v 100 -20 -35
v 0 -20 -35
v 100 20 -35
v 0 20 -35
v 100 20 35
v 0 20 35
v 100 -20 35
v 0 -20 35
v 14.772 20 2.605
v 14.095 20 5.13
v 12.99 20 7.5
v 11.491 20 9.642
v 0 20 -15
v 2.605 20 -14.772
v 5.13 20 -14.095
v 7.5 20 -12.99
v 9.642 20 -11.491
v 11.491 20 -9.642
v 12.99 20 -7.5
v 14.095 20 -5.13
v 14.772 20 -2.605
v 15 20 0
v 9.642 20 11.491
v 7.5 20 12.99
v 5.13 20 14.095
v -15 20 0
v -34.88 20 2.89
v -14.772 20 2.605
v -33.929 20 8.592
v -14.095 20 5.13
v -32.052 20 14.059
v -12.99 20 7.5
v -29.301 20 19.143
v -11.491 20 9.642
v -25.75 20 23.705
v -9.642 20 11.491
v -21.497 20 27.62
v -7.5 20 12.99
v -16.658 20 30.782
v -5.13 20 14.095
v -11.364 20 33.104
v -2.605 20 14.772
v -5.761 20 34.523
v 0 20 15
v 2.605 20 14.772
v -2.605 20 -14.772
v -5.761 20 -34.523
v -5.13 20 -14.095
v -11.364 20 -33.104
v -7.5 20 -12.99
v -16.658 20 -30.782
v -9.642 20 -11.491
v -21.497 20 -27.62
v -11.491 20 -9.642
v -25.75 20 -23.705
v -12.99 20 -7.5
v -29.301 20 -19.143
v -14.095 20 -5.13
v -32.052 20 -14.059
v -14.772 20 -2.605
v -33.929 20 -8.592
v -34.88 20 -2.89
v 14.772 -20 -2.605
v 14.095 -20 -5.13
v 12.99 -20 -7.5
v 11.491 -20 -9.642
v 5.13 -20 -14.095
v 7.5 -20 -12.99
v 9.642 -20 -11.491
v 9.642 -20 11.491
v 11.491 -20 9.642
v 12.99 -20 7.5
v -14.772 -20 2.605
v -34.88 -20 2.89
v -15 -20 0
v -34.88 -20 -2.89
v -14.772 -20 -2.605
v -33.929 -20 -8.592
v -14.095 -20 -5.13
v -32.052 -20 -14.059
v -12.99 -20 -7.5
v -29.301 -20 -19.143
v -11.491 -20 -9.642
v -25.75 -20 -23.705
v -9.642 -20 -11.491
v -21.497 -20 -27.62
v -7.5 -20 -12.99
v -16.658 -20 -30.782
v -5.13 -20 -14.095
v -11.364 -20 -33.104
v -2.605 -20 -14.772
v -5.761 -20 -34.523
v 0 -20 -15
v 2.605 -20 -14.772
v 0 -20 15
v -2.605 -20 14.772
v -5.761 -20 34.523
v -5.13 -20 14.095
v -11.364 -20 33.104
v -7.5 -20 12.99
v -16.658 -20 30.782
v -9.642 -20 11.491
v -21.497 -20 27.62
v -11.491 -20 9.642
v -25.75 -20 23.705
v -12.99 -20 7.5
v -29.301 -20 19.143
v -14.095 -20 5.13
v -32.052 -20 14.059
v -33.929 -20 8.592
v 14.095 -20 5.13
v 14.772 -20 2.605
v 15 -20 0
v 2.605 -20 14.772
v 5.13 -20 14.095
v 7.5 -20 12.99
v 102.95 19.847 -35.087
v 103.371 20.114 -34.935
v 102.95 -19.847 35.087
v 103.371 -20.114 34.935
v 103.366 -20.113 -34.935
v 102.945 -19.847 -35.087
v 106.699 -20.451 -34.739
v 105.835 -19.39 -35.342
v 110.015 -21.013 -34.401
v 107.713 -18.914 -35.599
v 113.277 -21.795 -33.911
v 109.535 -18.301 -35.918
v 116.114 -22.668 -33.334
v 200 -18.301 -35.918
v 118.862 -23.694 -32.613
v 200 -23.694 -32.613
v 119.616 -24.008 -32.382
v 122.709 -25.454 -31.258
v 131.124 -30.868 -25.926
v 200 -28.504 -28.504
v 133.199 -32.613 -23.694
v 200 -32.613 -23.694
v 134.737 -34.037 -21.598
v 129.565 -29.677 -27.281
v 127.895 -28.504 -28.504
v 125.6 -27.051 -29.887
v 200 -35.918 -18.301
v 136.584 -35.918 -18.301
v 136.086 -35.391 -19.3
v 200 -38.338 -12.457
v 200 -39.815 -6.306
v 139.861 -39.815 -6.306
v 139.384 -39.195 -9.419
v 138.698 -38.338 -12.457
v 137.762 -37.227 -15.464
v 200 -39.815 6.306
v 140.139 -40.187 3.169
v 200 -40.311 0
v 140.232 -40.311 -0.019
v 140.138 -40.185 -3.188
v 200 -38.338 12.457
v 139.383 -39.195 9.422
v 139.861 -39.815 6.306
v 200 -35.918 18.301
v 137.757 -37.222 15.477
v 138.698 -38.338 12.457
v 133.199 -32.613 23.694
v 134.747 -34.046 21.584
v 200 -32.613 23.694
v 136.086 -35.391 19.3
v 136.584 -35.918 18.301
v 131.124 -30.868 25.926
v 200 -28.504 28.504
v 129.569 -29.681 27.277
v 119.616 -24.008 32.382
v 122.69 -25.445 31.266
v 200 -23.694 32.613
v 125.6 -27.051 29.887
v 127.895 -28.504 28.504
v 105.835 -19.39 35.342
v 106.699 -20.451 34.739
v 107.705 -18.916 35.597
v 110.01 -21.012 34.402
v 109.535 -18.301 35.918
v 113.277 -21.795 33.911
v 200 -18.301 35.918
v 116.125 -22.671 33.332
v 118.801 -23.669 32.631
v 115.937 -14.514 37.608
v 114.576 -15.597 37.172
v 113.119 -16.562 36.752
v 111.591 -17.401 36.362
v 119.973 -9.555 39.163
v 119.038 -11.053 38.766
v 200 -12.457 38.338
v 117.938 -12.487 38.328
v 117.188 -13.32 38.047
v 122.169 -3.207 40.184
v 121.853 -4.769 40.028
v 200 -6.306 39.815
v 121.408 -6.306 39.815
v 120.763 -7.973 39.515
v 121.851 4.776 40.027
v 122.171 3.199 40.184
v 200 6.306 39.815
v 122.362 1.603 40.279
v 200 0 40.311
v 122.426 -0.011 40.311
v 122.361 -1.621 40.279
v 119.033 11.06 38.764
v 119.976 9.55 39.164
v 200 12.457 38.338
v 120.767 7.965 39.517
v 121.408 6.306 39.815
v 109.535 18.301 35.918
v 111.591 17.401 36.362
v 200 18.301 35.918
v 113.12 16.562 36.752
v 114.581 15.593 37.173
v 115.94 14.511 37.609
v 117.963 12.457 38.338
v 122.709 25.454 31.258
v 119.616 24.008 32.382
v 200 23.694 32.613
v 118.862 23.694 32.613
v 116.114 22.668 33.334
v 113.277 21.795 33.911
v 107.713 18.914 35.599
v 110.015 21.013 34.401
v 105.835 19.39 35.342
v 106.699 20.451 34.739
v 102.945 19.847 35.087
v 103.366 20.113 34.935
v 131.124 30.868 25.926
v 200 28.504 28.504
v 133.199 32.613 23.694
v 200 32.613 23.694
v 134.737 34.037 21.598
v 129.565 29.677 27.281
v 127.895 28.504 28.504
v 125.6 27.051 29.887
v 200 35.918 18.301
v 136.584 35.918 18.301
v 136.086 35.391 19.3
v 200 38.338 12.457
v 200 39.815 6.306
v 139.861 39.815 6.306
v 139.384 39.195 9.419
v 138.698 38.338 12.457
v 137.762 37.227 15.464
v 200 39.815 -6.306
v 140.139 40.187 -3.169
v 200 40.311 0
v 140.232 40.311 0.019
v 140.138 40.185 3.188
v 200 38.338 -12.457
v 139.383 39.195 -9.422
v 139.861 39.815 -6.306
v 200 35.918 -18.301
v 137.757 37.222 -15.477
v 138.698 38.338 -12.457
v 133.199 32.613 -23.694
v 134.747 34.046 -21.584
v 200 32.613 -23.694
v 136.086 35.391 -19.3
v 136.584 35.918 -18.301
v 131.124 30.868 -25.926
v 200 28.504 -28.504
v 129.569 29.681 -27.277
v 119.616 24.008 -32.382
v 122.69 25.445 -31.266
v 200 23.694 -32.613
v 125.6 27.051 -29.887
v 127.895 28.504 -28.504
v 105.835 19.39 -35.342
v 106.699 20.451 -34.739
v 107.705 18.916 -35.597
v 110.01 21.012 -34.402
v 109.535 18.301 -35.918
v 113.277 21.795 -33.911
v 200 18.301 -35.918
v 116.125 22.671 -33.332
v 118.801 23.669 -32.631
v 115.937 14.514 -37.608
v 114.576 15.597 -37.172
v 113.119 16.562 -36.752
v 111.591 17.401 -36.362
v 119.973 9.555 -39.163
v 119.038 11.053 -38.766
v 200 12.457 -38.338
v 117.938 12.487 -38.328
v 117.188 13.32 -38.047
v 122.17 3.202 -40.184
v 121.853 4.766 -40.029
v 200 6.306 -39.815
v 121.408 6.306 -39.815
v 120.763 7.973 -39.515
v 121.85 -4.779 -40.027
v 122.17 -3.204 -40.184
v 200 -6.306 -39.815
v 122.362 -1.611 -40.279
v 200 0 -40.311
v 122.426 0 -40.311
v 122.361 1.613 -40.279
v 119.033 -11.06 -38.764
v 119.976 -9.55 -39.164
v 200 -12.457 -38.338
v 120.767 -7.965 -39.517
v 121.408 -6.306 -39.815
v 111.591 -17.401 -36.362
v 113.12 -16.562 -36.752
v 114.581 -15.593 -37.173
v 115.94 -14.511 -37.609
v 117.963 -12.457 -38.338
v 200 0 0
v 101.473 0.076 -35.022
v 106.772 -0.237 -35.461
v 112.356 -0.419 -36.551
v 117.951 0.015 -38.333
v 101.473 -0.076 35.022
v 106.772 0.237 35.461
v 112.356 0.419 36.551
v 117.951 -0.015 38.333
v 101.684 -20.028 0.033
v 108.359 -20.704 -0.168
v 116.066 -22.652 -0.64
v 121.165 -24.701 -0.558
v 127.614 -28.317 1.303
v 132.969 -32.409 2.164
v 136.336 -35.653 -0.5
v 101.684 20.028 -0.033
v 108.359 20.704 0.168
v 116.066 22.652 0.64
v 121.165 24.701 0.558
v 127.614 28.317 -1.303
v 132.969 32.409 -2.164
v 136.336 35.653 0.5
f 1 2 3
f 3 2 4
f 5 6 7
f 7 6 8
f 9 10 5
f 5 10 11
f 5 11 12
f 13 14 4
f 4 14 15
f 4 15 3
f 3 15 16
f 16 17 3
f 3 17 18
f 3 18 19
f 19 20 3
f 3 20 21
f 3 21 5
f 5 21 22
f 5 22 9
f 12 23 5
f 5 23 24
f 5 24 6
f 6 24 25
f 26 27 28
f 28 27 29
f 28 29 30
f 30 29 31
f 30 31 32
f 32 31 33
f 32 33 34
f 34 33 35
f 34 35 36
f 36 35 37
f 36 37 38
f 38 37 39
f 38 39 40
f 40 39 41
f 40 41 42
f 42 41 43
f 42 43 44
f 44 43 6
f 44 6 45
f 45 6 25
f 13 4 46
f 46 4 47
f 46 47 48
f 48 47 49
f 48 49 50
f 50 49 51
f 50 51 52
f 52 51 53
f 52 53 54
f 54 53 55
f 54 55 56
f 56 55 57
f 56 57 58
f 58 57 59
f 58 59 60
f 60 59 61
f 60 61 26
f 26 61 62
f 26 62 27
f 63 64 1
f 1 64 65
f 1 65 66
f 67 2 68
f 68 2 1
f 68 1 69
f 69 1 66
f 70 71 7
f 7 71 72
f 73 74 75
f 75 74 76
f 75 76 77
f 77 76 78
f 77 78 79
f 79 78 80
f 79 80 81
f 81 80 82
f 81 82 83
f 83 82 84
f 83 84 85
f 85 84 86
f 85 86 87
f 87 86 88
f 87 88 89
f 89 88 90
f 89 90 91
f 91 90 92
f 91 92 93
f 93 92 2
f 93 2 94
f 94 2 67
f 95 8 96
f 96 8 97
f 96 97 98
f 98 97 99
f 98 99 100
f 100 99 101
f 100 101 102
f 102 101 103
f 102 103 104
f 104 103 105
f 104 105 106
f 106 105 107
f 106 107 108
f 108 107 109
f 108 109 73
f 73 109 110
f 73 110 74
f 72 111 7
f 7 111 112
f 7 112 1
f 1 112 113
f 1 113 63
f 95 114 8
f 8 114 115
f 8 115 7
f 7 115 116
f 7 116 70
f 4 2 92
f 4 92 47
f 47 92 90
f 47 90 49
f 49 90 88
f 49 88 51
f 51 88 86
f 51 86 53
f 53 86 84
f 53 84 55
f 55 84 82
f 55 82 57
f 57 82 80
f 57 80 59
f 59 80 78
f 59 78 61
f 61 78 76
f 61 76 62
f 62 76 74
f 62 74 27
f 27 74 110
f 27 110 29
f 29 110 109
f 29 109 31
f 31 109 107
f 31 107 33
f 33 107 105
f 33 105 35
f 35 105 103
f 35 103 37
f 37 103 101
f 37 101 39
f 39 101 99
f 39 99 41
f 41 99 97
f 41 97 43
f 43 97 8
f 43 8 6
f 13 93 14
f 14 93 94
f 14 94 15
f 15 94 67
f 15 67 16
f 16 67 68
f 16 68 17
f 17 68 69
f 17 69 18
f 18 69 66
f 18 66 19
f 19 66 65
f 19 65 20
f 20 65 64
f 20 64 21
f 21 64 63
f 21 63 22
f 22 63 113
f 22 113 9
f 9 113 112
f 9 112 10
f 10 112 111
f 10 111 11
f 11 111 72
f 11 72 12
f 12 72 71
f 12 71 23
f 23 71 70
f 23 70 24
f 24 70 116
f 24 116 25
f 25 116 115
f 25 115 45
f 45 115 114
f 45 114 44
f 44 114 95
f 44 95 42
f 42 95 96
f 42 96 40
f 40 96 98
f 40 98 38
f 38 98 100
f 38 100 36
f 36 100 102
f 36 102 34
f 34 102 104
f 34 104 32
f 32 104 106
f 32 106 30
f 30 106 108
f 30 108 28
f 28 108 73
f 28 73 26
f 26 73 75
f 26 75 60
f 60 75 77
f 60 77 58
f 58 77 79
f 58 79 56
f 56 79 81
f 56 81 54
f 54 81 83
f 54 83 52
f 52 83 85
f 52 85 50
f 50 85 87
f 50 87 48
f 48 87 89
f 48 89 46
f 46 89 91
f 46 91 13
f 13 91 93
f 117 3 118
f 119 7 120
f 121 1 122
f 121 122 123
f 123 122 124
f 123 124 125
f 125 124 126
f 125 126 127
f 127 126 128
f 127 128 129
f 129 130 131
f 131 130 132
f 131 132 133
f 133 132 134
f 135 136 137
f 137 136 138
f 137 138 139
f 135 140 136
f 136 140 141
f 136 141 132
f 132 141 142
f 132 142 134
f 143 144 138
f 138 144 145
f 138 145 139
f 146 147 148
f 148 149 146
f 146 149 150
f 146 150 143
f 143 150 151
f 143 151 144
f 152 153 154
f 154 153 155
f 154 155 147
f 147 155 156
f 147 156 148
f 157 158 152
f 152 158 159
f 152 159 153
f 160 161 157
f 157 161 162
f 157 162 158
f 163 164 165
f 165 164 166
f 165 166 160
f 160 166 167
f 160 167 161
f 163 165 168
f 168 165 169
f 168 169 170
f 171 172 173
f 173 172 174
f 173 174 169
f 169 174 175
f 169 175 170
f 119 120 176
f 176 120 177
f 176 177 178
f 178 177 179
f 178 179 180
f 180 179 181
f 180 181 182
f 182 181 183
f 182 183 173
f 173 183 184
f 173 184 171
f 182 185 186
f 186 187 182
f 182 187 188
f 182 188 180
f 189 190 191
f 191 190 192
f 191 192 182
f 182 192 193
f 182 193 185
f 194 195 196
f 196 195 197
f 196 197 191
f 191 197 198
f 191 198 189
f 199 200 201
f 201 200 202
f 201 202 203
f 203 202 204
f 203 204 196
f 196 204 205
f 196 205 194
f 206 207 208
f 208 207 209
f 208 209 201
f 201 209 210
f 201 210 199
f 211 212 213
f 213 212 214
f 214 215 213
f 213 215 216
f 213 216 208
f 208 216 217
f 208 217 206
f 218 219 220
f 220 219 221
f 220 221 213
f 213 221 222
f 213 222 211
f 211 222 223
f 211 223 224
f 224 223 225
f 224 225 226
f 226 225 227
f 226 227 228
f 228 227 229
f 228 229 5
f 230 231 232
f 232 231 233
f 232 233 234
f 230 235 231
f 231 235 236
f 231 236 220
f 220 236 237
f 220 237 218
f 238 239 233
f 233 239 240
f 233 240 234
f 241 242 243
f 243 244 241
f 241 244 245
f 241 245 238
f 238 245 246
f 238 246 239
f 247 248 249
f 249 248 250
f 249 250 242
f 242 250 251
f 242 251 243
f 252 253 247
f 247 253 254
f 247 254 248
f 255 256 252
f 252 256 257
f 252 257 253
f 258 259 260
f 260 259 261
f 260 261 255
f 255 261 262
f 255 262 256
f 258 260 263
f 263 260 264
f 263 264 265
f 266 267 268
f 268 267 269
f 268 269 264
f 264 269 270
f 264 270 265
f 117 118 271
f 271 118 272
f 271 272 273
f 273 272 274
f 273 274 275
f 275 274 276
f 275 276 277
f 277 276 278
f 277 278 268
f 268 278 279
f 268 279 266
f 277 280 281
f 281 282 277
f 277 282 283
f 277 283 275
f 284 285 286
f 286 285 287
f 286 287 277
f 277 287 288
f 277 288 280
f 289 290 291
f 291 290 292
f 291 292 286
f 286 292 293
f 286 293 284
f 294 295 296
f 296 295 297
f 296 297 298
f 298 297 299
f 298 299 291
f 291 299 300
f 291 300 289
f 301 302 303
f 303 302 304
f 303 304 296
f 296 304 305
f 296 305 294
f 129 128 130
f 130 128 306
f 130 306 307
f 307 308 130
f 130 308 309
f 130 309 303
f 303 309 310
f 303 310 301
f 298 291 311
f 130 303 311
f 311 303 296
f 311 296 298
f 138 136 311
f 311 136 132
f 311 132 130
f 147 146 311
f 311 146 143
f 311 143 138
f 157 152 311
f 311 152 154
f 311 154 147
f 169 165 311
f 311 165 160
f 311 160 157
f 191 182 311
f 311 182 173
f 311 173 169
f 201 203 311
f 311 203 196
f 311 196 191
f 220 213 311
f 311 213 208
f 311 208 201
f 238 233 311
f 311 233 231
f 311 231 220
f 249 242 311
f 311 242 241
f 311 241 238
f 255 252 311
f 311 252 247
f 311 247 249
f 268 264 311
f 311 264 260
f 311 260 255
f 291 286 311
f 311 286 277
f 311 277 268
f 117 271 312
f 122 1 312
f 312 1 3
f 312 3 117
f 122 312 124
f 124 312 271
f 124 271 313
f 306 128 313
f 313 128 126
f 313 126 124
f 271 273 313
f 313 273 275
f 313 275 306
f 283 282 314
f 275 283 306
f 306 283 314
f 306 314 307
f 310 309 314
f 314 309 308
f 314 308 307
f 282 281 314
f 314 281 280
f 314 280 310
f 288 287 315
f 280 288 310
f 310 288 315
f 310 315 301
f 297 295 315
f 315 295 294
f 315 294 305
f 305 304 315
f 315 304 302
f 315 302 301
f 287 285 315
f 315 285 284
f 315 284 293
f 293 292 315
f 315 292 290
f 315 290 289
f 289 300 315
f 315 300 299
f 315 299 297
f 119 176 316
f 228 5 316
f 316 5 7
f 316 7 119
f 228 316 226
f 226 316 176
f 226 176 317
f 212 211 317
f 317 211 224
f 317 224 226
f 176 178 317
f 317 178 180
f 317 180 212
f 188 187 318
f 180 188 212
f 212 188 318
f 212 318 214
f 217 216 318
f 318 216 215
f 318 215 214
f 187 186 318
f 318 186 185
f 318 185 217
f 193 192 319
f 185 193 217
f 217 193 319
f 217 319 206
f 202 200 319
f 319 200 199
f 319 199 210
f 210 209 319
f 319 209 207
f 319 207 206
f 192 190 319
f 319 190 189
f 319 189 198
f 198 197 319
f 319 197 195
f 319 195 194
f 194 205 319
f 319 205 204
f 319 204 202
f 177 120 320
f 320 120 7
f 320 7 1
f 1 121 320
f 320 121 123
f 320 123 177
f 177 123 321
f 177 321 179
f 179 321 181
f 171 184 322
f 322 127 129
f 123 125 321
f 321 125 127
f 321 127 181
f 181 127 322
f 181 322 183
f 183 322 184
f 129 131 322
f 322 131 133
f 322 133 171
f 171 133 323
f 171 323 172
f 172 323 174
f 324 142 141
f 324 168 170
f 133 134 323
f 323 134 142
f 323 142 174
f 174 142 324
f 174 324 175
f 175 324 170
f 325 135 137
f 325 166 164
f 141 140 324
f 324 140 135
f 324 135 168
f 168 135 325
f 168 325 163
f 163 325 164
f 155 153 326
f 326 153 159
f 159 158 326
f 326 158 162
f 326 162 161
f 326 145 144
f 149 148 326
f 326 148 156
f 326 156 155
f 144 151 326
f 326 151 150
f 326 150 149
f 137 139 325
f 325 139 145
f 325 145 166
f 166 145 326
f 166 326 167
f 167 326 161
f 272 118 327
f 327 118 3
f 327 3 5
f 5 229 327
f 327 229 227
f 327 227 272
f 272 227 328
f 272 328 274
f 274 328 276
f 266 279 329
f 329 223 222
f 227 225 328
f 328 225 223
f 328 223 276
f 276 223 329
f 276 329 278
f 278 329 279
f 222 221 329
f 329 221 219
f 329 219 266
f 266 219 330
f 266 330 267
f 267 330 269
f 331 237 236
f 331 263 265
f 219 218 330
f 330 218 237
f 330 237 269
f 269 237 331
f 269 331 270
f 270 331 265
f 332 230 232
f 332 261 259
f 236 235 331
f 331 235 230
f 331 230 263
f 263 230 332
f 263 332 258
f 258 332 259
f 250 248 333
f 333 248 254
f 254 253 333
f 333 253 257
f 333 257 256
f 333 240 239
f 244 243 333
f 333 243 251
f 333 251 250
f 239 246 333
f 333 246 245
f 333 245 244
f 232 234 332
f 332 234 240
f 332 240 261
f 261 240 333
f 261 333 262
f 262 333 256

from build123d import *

# Parameters (mm, degrees)
SKETCH2_R           = 15
BOSS_EXTRUDE1_DEPTH = 20
SKETCH3_R           = 40.311288741
BOSS_EXTRUDE2_DEPTH = 50
FILLET1_R           = 50
FILLET2_R           = 50


with BuildPart() as part:
    # Sketch2 → Boss-Extrude1 (new, symmetric)
    with BuildSketch(Plane(origin=(0, 0, 0), x_dir=(1, 0, 0), z_dir=(0, 1, 0))):
        with BuildLine():
            Line((0, 35), (200, 35))
            Line((200, 35), (200, -35))
            Line((200, -35), (0, -35))
            ThreePointArc((0, -35), (-35, 0), (0, 35))
        make_face()
        with Locations(Location((0, 0, 0), (0, 0, 270))):
            Circle(SKETCH2_R, mode=Mode.SUBTRACT)
    extrude(amount=BOSS_EXTRUDE1_DEPTH, both=True)

    # Sketch3 → Boss-Extrude2 (add)
    with BuildSketch(Plane(origin=(200, 0, 0), x_dir=(0, 0, -1), z_dir=(1, 0, 0))):
        Circle(SKETCH3_R)
    extrude(amount=-BOSS_EXTRUDE2_DEPTH)

    # Fillet1
    # the kernel refuses this fillet: 50 mm, written as the material it adds along each edge
    with BuildSketch(Plane(origin=(150, -145, -35), x_dir=(-1, 0, 0), z_dir=(0, 1, 0))) as fillet1_piece_1_section:
        with BuildLine():
            CenterArc((FILLET1_R, -FILLET1_R), FILLET1_R, 90, 90)
            Line((0, -FILLET1_R), (0, 0))
            Line((0, 0), (FILLET1_R, 0))
        make_face()
    fillet1_piece_1 = extrude(amount=290, mode=Mode.PRIVATE)
    fillet1_piece_1 = fillet1_piece_1 & Plane(origin=(131.355668078, 0, 0), x_dir=(0, 0, -1), z_dir=(1, 0, 0)) * Cylinder(40.311288741, 781, mode=Mode.PRIVATE)
    add(fillet1_piece_1)
    with BuildSketch(Plane(origin=(150, 145, 35), x_dir=(0, 0, 1), z_dir=(0, -1, 0))) as fillet1_piece_2_section:
        with BuildLine():
            CenterArc((FILLET1_R, FILLET1_R), FILLET1_R, 180, 90)
            Line((0, FILLET1_R), (0, 0))
            Line((0, 0), (FILLET1_R, 0))
        make_face()
    fillet1_piece_2 = extrude(amount=290, mode=Mode.PRIVATE)
    fillet1_piece_2 = fillet1_piece_2 & Plane(origin=(131.35565772, 0, 0), x_dir=(0, 0, -1), z_dir=(1, 0, 0)) * Cylinder(40.311288741, 780, mode=Mode.PRIVATE)
    add(fillet1_piece_2)

    # Fillet2
    # the kernel refuses this fillet: 50 mm, written as the material it adds along each edge
    with BuildSketch(Plane(origin=(150, -20, -160), x_dir=(-1, 0, 0), z_dir=(0, 0, 1))) as fillet2_piece_1_section:
        with BuildLine():
            CenterArc((FILLET2_R, FILLET2_R), FILLET2_R, 180, 90)
            Line((0, FILLET2_R), (0, 0))
            Line((0, 0), (FILLET2_R, 0))
        make_face()
    fillet2_piece_1 = extrude(amount=320, mode=Mode.PRIVATE)
    fillet2_piece_1 = fillet2_piece_1 & Plane(origin=(135.236587788, 0, 0), x_dir=(0, 0, -1), z_dir=(1, 0, 0)) * Cylinder(40.311288741, 840, mode=Mode.PRIVATE)
    add(fillet2_piece_1)
    with BuildSketch(Plane(origin=(150, 20, -160), x_dir=(-1, 0, 0), z_dir=(0, 0, 1))) as fillet2_piece_2_section:
        with BuildLine():
            CenterArc((FILLET2_R, -FILLET2_R), FILLET2_R, 90, 90)
            Line((0, -FILLET2_R), (0, 0))
            Line((0, 0), (FILLET2_R, 0))
        make_face()
    fillet2_piece_2 = extrude(amount=320, mode=Mode.PRIVATE)
    fillet2_piece_2 = fillet2_piece_2 & Plane(origin=(135.236587787, 0, 0), x_dir=(0, 0, -1), z_dir=(1, 0, 0)) * Cylinder(40.311288741, 840, mode=Mode.PRIVATE)
    add(fillet2_piece_2)


solid = part.part
